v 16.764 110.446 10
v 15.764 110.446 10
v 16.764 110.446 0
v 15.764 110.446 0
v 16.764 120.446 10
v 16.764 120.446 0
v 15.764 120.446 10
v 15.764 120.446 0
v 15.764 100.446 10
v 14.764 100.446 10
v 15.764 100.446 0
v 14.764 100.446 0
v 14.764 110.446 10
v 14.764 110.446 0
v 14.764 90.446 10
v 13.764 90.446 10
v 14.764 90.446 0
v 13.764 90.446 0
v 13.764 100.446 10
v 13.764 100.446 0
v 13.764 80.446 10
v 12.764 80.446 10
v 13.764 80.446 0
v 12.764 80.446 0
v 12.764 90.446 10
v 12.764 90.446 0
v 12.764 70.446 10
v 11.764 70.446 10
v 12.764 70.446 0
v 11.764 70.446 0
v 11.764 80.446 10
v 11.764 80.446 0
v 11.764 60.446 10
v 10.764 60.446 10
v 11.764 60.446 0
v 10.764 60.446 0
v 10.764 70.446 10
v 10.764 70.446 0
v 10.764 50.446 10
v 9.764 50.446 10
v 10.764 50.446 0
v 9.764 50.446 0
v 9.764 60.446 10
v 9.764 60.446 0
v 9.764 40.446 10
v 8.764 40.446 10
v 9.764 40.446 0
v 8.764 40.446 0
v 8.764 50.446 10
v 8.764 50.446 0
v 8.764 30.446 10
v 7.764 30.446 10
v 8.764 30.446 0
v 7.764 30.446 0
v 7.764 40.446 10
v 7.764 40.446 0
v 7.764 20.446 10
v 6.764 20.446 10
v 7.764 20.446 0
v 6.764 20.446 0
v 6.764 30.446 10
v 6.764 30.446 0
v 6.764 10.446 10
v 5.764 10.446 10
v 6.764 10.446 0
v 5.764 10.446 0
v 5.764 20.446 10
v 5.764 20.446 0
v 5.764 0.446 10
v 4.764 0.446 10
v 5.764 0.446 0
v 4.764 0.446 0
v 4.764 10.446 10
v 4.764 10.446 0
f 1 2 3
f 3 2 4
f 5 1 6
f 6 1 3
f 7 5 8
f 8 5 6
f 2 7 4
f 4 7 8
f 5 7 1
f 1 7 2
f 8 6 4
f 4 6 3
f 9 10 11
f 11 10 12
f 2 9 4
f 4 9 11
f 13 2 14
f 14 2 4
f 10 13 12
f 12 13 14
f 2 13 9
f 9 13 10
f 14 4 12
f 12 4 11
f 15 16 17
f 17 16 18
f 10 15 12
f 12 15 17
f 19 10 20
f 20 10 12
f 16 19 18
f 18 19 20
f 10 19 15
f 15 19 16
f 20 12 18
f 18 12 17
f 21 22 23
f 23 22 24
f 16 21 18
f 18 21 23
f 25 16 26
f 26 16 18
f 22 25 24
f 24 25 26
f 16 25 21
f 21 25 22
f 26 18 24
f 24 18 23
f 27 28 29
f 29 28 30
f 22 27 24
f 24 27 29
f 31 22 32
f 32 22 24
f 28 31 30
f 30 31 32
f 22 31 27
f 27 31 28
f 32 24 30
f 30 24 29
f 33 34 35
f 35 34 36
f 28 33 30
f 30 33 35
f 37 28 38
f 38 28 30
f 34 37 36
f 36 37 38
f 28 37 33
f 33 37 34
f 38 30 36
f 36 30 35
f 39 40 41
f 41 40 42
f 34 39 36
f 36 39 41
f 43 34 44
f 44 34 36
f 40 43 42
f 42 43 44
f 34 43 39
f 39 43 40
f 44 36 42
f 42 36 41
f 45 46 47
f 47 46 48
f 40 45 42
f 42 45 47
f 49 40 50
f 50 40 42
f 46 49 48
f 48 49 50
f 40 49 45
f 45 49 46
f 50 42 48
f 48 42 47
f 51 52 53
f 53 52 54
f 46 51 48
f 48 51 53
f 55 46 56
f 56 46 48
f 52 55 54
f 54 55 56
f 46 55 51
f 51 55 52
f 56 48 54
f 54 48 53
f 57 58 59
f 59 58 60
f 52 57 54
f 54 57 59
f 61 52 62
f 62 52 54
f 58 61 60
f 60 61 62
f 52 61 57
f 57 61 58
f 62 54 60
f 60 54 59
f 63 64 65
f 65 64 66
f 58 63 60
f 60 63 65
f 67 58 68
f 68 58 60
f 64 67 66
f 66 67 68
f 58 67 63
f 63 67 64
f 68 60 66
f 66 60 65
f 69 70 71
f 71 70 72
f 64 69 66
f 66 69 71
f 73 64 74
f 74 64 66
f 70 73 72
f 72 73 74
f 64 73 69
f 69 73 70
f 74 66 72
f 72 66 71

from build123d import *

# Parameters (mm, degrees)
SKETCH2_W              = 1
SKETCH2_H              = 10
BOSS_EXTRUDE1_DEPTH    = 10
BOSS_EXTRUDE1_2_DEPTH  = 10
BOSS_EXTRUDE1_3_DEPTH  = 10
BOSS_EXTRUDE1_4_DEPTH  = 10
BOSS_EXTRUDE1_5_DEPTH  = 10
BOSS_EXTRUDE1_6_DEPTH  = 10
BOSS_EXTRUDE1_7_DEPTH  = 10
BOSS_EXTRUDE1_8_DEPTH  = 10
BOSS_EXTRUDE1_9_DEPTH  = 10
BOSS_EXTRUDE1_10_DEPTH = 10
BOSS_EXTRUDE1_11_DEPTH = 10
BOSS_EXTRUDE1_12_DEPTH = 10


with BuildPart() as part:
    # Sketch2 → Boss-Extrude1 (new body)
    with BuildSketch(Plane.XY):
        with Locations((5.263921221, 5.445606952)):
            Rectangle(SKETCH2_W, SKETCH2_H)
    extrude(amount=BOSS_EXTRUDE1_DEPTH)


with BuildPart() as body_2:
    # Sketch2 → Boss-Extrude1 2 (new body)
    with BuildSketch(Plane.XY):
        with Locations((16.263921221, 115.445606952)):
            Rectangle(SKETCH2_W, SKETCH2_H)
    extrude(amount=BOSS_EXTRUDE1_2_DEPTH)


with BuildPart() as body_3:
    # Sketch2 → Boss-Extrude1 3 (new body)
    with BuildSketch(Plane.XY):
        with Locations((15.263921221, 105.445606952)):
            Rectangle(SKETCH2_W, SKETCH2_H)
    extrude(amount=BOSS_EXTRUDE1_3_DEPTH)


with BuildPart() as body_4:
    # Sketch2 → Boss-Extrude1 4 (new body)
    with BuildSketch(Plane.XY):
        with Locations((14.263921221, 95.445606952)):
            Rectangle(SKETCH2_W, SKETCH2_H)
    extrude(amount=BOSS_EXTRUDE1_4_DEPTH)


with BuildPart() as body_5:
    # Sketch2 → Boss-Extrude1 5 (new body)
    with BuildSketch(Plane.XY):
        with Locations((13.263921221, 85.445606952)):
            Rectangle(SKETCH2_W, SKETCH2_H)
    extrude(amount=BOSS_EXTRUDE1_5_DEPTH)


with BuildPart() as body_6:
    # Sketch2 → Boss-Extrude1 6 (new body)
    with BuildSketch(Plane.XY):
        with Locations((12.263921221, 75.445606952)):
            Rectangle(SKETCH2_W, SKETCH2_H)
    extrude(amount=BOSS_EXTRUDE1_6_DEPTH)


with BuildPart() as body_7:
    # Sketch2 → Boss-Extrude1 7 (new body)
    with BuildSketch(Plane.XY):
        with Locations((11.263921221, 65.445606952)):
            Rectangle(SKETCH2_W, SKETCH2_H)
    extrude(amount=BOSS_EXTRUDE1_7_DEPTH)


with BuildPart() as body_8:
    # Sketch2 → Boss-Extrude1 8 (new body)
    with BuildSketch(Plane.XY):
        with Locations((10.263921221, 55.445606952)):
            Rectangle(SKETCH2_W, SKETCH2_H)
    extrude(amount=BOSS_EXTRUDE1_8_DEPTH)


with BuildPart() as body_9:
    # Sketch2 → Boss-Extrude1 9 (new body)
    with BuildSketch(Plane.XY):
        with Locations((9.263921221, 45.445606952)):
            Rectangle(SKETCH2_W, SKETCH2_H)
    extrude(amount=BOSS_EXTRUDE1_9_DEPTH)


with BuildPart() as body_10:
    # Sketch2 → Boss-Extrude1 10 (new body)
    with BuildSketch(Plane.XY):
        with Locations((8.263921221, 35.445606952)):
            Rectangle(SKETCH2_W, SKETCH2_H)
    extrude(amount=BOSS_EXTRUDE1_10_DEPTH)


with BuildPart() as body_11:
    # Sketch2 → Boss-Extrude1 11 (new body)
    with BuildSketch(Plane.XY):
        with Locations((6.263921221, 15.445606952)):
            Rectangle(SKETCH2_W, SKETCH2_H)
    extrude(amount=BOSS_EXTRUDE1_11_DEPTH)


with BuildPart() as body_12:
    # Sketch2 → Boss-Extrude1 12 (new body)
    with BuildSketch(Plane.XY):
        with Locations((7.263921221, 25.445606952)):
            Rectangle(SKETCH2_W, SKETCH2_H)
    extrude(amount=BOSS_EXTRUDE1_12_DEPTH)


solid = Compound([part.part, body_2.part, body_3.part, body_4.part, body_5.part, body_6.part, body_7.part, body_8.part, body_9.part, body_10.part, body_11.part, body_12.part])
